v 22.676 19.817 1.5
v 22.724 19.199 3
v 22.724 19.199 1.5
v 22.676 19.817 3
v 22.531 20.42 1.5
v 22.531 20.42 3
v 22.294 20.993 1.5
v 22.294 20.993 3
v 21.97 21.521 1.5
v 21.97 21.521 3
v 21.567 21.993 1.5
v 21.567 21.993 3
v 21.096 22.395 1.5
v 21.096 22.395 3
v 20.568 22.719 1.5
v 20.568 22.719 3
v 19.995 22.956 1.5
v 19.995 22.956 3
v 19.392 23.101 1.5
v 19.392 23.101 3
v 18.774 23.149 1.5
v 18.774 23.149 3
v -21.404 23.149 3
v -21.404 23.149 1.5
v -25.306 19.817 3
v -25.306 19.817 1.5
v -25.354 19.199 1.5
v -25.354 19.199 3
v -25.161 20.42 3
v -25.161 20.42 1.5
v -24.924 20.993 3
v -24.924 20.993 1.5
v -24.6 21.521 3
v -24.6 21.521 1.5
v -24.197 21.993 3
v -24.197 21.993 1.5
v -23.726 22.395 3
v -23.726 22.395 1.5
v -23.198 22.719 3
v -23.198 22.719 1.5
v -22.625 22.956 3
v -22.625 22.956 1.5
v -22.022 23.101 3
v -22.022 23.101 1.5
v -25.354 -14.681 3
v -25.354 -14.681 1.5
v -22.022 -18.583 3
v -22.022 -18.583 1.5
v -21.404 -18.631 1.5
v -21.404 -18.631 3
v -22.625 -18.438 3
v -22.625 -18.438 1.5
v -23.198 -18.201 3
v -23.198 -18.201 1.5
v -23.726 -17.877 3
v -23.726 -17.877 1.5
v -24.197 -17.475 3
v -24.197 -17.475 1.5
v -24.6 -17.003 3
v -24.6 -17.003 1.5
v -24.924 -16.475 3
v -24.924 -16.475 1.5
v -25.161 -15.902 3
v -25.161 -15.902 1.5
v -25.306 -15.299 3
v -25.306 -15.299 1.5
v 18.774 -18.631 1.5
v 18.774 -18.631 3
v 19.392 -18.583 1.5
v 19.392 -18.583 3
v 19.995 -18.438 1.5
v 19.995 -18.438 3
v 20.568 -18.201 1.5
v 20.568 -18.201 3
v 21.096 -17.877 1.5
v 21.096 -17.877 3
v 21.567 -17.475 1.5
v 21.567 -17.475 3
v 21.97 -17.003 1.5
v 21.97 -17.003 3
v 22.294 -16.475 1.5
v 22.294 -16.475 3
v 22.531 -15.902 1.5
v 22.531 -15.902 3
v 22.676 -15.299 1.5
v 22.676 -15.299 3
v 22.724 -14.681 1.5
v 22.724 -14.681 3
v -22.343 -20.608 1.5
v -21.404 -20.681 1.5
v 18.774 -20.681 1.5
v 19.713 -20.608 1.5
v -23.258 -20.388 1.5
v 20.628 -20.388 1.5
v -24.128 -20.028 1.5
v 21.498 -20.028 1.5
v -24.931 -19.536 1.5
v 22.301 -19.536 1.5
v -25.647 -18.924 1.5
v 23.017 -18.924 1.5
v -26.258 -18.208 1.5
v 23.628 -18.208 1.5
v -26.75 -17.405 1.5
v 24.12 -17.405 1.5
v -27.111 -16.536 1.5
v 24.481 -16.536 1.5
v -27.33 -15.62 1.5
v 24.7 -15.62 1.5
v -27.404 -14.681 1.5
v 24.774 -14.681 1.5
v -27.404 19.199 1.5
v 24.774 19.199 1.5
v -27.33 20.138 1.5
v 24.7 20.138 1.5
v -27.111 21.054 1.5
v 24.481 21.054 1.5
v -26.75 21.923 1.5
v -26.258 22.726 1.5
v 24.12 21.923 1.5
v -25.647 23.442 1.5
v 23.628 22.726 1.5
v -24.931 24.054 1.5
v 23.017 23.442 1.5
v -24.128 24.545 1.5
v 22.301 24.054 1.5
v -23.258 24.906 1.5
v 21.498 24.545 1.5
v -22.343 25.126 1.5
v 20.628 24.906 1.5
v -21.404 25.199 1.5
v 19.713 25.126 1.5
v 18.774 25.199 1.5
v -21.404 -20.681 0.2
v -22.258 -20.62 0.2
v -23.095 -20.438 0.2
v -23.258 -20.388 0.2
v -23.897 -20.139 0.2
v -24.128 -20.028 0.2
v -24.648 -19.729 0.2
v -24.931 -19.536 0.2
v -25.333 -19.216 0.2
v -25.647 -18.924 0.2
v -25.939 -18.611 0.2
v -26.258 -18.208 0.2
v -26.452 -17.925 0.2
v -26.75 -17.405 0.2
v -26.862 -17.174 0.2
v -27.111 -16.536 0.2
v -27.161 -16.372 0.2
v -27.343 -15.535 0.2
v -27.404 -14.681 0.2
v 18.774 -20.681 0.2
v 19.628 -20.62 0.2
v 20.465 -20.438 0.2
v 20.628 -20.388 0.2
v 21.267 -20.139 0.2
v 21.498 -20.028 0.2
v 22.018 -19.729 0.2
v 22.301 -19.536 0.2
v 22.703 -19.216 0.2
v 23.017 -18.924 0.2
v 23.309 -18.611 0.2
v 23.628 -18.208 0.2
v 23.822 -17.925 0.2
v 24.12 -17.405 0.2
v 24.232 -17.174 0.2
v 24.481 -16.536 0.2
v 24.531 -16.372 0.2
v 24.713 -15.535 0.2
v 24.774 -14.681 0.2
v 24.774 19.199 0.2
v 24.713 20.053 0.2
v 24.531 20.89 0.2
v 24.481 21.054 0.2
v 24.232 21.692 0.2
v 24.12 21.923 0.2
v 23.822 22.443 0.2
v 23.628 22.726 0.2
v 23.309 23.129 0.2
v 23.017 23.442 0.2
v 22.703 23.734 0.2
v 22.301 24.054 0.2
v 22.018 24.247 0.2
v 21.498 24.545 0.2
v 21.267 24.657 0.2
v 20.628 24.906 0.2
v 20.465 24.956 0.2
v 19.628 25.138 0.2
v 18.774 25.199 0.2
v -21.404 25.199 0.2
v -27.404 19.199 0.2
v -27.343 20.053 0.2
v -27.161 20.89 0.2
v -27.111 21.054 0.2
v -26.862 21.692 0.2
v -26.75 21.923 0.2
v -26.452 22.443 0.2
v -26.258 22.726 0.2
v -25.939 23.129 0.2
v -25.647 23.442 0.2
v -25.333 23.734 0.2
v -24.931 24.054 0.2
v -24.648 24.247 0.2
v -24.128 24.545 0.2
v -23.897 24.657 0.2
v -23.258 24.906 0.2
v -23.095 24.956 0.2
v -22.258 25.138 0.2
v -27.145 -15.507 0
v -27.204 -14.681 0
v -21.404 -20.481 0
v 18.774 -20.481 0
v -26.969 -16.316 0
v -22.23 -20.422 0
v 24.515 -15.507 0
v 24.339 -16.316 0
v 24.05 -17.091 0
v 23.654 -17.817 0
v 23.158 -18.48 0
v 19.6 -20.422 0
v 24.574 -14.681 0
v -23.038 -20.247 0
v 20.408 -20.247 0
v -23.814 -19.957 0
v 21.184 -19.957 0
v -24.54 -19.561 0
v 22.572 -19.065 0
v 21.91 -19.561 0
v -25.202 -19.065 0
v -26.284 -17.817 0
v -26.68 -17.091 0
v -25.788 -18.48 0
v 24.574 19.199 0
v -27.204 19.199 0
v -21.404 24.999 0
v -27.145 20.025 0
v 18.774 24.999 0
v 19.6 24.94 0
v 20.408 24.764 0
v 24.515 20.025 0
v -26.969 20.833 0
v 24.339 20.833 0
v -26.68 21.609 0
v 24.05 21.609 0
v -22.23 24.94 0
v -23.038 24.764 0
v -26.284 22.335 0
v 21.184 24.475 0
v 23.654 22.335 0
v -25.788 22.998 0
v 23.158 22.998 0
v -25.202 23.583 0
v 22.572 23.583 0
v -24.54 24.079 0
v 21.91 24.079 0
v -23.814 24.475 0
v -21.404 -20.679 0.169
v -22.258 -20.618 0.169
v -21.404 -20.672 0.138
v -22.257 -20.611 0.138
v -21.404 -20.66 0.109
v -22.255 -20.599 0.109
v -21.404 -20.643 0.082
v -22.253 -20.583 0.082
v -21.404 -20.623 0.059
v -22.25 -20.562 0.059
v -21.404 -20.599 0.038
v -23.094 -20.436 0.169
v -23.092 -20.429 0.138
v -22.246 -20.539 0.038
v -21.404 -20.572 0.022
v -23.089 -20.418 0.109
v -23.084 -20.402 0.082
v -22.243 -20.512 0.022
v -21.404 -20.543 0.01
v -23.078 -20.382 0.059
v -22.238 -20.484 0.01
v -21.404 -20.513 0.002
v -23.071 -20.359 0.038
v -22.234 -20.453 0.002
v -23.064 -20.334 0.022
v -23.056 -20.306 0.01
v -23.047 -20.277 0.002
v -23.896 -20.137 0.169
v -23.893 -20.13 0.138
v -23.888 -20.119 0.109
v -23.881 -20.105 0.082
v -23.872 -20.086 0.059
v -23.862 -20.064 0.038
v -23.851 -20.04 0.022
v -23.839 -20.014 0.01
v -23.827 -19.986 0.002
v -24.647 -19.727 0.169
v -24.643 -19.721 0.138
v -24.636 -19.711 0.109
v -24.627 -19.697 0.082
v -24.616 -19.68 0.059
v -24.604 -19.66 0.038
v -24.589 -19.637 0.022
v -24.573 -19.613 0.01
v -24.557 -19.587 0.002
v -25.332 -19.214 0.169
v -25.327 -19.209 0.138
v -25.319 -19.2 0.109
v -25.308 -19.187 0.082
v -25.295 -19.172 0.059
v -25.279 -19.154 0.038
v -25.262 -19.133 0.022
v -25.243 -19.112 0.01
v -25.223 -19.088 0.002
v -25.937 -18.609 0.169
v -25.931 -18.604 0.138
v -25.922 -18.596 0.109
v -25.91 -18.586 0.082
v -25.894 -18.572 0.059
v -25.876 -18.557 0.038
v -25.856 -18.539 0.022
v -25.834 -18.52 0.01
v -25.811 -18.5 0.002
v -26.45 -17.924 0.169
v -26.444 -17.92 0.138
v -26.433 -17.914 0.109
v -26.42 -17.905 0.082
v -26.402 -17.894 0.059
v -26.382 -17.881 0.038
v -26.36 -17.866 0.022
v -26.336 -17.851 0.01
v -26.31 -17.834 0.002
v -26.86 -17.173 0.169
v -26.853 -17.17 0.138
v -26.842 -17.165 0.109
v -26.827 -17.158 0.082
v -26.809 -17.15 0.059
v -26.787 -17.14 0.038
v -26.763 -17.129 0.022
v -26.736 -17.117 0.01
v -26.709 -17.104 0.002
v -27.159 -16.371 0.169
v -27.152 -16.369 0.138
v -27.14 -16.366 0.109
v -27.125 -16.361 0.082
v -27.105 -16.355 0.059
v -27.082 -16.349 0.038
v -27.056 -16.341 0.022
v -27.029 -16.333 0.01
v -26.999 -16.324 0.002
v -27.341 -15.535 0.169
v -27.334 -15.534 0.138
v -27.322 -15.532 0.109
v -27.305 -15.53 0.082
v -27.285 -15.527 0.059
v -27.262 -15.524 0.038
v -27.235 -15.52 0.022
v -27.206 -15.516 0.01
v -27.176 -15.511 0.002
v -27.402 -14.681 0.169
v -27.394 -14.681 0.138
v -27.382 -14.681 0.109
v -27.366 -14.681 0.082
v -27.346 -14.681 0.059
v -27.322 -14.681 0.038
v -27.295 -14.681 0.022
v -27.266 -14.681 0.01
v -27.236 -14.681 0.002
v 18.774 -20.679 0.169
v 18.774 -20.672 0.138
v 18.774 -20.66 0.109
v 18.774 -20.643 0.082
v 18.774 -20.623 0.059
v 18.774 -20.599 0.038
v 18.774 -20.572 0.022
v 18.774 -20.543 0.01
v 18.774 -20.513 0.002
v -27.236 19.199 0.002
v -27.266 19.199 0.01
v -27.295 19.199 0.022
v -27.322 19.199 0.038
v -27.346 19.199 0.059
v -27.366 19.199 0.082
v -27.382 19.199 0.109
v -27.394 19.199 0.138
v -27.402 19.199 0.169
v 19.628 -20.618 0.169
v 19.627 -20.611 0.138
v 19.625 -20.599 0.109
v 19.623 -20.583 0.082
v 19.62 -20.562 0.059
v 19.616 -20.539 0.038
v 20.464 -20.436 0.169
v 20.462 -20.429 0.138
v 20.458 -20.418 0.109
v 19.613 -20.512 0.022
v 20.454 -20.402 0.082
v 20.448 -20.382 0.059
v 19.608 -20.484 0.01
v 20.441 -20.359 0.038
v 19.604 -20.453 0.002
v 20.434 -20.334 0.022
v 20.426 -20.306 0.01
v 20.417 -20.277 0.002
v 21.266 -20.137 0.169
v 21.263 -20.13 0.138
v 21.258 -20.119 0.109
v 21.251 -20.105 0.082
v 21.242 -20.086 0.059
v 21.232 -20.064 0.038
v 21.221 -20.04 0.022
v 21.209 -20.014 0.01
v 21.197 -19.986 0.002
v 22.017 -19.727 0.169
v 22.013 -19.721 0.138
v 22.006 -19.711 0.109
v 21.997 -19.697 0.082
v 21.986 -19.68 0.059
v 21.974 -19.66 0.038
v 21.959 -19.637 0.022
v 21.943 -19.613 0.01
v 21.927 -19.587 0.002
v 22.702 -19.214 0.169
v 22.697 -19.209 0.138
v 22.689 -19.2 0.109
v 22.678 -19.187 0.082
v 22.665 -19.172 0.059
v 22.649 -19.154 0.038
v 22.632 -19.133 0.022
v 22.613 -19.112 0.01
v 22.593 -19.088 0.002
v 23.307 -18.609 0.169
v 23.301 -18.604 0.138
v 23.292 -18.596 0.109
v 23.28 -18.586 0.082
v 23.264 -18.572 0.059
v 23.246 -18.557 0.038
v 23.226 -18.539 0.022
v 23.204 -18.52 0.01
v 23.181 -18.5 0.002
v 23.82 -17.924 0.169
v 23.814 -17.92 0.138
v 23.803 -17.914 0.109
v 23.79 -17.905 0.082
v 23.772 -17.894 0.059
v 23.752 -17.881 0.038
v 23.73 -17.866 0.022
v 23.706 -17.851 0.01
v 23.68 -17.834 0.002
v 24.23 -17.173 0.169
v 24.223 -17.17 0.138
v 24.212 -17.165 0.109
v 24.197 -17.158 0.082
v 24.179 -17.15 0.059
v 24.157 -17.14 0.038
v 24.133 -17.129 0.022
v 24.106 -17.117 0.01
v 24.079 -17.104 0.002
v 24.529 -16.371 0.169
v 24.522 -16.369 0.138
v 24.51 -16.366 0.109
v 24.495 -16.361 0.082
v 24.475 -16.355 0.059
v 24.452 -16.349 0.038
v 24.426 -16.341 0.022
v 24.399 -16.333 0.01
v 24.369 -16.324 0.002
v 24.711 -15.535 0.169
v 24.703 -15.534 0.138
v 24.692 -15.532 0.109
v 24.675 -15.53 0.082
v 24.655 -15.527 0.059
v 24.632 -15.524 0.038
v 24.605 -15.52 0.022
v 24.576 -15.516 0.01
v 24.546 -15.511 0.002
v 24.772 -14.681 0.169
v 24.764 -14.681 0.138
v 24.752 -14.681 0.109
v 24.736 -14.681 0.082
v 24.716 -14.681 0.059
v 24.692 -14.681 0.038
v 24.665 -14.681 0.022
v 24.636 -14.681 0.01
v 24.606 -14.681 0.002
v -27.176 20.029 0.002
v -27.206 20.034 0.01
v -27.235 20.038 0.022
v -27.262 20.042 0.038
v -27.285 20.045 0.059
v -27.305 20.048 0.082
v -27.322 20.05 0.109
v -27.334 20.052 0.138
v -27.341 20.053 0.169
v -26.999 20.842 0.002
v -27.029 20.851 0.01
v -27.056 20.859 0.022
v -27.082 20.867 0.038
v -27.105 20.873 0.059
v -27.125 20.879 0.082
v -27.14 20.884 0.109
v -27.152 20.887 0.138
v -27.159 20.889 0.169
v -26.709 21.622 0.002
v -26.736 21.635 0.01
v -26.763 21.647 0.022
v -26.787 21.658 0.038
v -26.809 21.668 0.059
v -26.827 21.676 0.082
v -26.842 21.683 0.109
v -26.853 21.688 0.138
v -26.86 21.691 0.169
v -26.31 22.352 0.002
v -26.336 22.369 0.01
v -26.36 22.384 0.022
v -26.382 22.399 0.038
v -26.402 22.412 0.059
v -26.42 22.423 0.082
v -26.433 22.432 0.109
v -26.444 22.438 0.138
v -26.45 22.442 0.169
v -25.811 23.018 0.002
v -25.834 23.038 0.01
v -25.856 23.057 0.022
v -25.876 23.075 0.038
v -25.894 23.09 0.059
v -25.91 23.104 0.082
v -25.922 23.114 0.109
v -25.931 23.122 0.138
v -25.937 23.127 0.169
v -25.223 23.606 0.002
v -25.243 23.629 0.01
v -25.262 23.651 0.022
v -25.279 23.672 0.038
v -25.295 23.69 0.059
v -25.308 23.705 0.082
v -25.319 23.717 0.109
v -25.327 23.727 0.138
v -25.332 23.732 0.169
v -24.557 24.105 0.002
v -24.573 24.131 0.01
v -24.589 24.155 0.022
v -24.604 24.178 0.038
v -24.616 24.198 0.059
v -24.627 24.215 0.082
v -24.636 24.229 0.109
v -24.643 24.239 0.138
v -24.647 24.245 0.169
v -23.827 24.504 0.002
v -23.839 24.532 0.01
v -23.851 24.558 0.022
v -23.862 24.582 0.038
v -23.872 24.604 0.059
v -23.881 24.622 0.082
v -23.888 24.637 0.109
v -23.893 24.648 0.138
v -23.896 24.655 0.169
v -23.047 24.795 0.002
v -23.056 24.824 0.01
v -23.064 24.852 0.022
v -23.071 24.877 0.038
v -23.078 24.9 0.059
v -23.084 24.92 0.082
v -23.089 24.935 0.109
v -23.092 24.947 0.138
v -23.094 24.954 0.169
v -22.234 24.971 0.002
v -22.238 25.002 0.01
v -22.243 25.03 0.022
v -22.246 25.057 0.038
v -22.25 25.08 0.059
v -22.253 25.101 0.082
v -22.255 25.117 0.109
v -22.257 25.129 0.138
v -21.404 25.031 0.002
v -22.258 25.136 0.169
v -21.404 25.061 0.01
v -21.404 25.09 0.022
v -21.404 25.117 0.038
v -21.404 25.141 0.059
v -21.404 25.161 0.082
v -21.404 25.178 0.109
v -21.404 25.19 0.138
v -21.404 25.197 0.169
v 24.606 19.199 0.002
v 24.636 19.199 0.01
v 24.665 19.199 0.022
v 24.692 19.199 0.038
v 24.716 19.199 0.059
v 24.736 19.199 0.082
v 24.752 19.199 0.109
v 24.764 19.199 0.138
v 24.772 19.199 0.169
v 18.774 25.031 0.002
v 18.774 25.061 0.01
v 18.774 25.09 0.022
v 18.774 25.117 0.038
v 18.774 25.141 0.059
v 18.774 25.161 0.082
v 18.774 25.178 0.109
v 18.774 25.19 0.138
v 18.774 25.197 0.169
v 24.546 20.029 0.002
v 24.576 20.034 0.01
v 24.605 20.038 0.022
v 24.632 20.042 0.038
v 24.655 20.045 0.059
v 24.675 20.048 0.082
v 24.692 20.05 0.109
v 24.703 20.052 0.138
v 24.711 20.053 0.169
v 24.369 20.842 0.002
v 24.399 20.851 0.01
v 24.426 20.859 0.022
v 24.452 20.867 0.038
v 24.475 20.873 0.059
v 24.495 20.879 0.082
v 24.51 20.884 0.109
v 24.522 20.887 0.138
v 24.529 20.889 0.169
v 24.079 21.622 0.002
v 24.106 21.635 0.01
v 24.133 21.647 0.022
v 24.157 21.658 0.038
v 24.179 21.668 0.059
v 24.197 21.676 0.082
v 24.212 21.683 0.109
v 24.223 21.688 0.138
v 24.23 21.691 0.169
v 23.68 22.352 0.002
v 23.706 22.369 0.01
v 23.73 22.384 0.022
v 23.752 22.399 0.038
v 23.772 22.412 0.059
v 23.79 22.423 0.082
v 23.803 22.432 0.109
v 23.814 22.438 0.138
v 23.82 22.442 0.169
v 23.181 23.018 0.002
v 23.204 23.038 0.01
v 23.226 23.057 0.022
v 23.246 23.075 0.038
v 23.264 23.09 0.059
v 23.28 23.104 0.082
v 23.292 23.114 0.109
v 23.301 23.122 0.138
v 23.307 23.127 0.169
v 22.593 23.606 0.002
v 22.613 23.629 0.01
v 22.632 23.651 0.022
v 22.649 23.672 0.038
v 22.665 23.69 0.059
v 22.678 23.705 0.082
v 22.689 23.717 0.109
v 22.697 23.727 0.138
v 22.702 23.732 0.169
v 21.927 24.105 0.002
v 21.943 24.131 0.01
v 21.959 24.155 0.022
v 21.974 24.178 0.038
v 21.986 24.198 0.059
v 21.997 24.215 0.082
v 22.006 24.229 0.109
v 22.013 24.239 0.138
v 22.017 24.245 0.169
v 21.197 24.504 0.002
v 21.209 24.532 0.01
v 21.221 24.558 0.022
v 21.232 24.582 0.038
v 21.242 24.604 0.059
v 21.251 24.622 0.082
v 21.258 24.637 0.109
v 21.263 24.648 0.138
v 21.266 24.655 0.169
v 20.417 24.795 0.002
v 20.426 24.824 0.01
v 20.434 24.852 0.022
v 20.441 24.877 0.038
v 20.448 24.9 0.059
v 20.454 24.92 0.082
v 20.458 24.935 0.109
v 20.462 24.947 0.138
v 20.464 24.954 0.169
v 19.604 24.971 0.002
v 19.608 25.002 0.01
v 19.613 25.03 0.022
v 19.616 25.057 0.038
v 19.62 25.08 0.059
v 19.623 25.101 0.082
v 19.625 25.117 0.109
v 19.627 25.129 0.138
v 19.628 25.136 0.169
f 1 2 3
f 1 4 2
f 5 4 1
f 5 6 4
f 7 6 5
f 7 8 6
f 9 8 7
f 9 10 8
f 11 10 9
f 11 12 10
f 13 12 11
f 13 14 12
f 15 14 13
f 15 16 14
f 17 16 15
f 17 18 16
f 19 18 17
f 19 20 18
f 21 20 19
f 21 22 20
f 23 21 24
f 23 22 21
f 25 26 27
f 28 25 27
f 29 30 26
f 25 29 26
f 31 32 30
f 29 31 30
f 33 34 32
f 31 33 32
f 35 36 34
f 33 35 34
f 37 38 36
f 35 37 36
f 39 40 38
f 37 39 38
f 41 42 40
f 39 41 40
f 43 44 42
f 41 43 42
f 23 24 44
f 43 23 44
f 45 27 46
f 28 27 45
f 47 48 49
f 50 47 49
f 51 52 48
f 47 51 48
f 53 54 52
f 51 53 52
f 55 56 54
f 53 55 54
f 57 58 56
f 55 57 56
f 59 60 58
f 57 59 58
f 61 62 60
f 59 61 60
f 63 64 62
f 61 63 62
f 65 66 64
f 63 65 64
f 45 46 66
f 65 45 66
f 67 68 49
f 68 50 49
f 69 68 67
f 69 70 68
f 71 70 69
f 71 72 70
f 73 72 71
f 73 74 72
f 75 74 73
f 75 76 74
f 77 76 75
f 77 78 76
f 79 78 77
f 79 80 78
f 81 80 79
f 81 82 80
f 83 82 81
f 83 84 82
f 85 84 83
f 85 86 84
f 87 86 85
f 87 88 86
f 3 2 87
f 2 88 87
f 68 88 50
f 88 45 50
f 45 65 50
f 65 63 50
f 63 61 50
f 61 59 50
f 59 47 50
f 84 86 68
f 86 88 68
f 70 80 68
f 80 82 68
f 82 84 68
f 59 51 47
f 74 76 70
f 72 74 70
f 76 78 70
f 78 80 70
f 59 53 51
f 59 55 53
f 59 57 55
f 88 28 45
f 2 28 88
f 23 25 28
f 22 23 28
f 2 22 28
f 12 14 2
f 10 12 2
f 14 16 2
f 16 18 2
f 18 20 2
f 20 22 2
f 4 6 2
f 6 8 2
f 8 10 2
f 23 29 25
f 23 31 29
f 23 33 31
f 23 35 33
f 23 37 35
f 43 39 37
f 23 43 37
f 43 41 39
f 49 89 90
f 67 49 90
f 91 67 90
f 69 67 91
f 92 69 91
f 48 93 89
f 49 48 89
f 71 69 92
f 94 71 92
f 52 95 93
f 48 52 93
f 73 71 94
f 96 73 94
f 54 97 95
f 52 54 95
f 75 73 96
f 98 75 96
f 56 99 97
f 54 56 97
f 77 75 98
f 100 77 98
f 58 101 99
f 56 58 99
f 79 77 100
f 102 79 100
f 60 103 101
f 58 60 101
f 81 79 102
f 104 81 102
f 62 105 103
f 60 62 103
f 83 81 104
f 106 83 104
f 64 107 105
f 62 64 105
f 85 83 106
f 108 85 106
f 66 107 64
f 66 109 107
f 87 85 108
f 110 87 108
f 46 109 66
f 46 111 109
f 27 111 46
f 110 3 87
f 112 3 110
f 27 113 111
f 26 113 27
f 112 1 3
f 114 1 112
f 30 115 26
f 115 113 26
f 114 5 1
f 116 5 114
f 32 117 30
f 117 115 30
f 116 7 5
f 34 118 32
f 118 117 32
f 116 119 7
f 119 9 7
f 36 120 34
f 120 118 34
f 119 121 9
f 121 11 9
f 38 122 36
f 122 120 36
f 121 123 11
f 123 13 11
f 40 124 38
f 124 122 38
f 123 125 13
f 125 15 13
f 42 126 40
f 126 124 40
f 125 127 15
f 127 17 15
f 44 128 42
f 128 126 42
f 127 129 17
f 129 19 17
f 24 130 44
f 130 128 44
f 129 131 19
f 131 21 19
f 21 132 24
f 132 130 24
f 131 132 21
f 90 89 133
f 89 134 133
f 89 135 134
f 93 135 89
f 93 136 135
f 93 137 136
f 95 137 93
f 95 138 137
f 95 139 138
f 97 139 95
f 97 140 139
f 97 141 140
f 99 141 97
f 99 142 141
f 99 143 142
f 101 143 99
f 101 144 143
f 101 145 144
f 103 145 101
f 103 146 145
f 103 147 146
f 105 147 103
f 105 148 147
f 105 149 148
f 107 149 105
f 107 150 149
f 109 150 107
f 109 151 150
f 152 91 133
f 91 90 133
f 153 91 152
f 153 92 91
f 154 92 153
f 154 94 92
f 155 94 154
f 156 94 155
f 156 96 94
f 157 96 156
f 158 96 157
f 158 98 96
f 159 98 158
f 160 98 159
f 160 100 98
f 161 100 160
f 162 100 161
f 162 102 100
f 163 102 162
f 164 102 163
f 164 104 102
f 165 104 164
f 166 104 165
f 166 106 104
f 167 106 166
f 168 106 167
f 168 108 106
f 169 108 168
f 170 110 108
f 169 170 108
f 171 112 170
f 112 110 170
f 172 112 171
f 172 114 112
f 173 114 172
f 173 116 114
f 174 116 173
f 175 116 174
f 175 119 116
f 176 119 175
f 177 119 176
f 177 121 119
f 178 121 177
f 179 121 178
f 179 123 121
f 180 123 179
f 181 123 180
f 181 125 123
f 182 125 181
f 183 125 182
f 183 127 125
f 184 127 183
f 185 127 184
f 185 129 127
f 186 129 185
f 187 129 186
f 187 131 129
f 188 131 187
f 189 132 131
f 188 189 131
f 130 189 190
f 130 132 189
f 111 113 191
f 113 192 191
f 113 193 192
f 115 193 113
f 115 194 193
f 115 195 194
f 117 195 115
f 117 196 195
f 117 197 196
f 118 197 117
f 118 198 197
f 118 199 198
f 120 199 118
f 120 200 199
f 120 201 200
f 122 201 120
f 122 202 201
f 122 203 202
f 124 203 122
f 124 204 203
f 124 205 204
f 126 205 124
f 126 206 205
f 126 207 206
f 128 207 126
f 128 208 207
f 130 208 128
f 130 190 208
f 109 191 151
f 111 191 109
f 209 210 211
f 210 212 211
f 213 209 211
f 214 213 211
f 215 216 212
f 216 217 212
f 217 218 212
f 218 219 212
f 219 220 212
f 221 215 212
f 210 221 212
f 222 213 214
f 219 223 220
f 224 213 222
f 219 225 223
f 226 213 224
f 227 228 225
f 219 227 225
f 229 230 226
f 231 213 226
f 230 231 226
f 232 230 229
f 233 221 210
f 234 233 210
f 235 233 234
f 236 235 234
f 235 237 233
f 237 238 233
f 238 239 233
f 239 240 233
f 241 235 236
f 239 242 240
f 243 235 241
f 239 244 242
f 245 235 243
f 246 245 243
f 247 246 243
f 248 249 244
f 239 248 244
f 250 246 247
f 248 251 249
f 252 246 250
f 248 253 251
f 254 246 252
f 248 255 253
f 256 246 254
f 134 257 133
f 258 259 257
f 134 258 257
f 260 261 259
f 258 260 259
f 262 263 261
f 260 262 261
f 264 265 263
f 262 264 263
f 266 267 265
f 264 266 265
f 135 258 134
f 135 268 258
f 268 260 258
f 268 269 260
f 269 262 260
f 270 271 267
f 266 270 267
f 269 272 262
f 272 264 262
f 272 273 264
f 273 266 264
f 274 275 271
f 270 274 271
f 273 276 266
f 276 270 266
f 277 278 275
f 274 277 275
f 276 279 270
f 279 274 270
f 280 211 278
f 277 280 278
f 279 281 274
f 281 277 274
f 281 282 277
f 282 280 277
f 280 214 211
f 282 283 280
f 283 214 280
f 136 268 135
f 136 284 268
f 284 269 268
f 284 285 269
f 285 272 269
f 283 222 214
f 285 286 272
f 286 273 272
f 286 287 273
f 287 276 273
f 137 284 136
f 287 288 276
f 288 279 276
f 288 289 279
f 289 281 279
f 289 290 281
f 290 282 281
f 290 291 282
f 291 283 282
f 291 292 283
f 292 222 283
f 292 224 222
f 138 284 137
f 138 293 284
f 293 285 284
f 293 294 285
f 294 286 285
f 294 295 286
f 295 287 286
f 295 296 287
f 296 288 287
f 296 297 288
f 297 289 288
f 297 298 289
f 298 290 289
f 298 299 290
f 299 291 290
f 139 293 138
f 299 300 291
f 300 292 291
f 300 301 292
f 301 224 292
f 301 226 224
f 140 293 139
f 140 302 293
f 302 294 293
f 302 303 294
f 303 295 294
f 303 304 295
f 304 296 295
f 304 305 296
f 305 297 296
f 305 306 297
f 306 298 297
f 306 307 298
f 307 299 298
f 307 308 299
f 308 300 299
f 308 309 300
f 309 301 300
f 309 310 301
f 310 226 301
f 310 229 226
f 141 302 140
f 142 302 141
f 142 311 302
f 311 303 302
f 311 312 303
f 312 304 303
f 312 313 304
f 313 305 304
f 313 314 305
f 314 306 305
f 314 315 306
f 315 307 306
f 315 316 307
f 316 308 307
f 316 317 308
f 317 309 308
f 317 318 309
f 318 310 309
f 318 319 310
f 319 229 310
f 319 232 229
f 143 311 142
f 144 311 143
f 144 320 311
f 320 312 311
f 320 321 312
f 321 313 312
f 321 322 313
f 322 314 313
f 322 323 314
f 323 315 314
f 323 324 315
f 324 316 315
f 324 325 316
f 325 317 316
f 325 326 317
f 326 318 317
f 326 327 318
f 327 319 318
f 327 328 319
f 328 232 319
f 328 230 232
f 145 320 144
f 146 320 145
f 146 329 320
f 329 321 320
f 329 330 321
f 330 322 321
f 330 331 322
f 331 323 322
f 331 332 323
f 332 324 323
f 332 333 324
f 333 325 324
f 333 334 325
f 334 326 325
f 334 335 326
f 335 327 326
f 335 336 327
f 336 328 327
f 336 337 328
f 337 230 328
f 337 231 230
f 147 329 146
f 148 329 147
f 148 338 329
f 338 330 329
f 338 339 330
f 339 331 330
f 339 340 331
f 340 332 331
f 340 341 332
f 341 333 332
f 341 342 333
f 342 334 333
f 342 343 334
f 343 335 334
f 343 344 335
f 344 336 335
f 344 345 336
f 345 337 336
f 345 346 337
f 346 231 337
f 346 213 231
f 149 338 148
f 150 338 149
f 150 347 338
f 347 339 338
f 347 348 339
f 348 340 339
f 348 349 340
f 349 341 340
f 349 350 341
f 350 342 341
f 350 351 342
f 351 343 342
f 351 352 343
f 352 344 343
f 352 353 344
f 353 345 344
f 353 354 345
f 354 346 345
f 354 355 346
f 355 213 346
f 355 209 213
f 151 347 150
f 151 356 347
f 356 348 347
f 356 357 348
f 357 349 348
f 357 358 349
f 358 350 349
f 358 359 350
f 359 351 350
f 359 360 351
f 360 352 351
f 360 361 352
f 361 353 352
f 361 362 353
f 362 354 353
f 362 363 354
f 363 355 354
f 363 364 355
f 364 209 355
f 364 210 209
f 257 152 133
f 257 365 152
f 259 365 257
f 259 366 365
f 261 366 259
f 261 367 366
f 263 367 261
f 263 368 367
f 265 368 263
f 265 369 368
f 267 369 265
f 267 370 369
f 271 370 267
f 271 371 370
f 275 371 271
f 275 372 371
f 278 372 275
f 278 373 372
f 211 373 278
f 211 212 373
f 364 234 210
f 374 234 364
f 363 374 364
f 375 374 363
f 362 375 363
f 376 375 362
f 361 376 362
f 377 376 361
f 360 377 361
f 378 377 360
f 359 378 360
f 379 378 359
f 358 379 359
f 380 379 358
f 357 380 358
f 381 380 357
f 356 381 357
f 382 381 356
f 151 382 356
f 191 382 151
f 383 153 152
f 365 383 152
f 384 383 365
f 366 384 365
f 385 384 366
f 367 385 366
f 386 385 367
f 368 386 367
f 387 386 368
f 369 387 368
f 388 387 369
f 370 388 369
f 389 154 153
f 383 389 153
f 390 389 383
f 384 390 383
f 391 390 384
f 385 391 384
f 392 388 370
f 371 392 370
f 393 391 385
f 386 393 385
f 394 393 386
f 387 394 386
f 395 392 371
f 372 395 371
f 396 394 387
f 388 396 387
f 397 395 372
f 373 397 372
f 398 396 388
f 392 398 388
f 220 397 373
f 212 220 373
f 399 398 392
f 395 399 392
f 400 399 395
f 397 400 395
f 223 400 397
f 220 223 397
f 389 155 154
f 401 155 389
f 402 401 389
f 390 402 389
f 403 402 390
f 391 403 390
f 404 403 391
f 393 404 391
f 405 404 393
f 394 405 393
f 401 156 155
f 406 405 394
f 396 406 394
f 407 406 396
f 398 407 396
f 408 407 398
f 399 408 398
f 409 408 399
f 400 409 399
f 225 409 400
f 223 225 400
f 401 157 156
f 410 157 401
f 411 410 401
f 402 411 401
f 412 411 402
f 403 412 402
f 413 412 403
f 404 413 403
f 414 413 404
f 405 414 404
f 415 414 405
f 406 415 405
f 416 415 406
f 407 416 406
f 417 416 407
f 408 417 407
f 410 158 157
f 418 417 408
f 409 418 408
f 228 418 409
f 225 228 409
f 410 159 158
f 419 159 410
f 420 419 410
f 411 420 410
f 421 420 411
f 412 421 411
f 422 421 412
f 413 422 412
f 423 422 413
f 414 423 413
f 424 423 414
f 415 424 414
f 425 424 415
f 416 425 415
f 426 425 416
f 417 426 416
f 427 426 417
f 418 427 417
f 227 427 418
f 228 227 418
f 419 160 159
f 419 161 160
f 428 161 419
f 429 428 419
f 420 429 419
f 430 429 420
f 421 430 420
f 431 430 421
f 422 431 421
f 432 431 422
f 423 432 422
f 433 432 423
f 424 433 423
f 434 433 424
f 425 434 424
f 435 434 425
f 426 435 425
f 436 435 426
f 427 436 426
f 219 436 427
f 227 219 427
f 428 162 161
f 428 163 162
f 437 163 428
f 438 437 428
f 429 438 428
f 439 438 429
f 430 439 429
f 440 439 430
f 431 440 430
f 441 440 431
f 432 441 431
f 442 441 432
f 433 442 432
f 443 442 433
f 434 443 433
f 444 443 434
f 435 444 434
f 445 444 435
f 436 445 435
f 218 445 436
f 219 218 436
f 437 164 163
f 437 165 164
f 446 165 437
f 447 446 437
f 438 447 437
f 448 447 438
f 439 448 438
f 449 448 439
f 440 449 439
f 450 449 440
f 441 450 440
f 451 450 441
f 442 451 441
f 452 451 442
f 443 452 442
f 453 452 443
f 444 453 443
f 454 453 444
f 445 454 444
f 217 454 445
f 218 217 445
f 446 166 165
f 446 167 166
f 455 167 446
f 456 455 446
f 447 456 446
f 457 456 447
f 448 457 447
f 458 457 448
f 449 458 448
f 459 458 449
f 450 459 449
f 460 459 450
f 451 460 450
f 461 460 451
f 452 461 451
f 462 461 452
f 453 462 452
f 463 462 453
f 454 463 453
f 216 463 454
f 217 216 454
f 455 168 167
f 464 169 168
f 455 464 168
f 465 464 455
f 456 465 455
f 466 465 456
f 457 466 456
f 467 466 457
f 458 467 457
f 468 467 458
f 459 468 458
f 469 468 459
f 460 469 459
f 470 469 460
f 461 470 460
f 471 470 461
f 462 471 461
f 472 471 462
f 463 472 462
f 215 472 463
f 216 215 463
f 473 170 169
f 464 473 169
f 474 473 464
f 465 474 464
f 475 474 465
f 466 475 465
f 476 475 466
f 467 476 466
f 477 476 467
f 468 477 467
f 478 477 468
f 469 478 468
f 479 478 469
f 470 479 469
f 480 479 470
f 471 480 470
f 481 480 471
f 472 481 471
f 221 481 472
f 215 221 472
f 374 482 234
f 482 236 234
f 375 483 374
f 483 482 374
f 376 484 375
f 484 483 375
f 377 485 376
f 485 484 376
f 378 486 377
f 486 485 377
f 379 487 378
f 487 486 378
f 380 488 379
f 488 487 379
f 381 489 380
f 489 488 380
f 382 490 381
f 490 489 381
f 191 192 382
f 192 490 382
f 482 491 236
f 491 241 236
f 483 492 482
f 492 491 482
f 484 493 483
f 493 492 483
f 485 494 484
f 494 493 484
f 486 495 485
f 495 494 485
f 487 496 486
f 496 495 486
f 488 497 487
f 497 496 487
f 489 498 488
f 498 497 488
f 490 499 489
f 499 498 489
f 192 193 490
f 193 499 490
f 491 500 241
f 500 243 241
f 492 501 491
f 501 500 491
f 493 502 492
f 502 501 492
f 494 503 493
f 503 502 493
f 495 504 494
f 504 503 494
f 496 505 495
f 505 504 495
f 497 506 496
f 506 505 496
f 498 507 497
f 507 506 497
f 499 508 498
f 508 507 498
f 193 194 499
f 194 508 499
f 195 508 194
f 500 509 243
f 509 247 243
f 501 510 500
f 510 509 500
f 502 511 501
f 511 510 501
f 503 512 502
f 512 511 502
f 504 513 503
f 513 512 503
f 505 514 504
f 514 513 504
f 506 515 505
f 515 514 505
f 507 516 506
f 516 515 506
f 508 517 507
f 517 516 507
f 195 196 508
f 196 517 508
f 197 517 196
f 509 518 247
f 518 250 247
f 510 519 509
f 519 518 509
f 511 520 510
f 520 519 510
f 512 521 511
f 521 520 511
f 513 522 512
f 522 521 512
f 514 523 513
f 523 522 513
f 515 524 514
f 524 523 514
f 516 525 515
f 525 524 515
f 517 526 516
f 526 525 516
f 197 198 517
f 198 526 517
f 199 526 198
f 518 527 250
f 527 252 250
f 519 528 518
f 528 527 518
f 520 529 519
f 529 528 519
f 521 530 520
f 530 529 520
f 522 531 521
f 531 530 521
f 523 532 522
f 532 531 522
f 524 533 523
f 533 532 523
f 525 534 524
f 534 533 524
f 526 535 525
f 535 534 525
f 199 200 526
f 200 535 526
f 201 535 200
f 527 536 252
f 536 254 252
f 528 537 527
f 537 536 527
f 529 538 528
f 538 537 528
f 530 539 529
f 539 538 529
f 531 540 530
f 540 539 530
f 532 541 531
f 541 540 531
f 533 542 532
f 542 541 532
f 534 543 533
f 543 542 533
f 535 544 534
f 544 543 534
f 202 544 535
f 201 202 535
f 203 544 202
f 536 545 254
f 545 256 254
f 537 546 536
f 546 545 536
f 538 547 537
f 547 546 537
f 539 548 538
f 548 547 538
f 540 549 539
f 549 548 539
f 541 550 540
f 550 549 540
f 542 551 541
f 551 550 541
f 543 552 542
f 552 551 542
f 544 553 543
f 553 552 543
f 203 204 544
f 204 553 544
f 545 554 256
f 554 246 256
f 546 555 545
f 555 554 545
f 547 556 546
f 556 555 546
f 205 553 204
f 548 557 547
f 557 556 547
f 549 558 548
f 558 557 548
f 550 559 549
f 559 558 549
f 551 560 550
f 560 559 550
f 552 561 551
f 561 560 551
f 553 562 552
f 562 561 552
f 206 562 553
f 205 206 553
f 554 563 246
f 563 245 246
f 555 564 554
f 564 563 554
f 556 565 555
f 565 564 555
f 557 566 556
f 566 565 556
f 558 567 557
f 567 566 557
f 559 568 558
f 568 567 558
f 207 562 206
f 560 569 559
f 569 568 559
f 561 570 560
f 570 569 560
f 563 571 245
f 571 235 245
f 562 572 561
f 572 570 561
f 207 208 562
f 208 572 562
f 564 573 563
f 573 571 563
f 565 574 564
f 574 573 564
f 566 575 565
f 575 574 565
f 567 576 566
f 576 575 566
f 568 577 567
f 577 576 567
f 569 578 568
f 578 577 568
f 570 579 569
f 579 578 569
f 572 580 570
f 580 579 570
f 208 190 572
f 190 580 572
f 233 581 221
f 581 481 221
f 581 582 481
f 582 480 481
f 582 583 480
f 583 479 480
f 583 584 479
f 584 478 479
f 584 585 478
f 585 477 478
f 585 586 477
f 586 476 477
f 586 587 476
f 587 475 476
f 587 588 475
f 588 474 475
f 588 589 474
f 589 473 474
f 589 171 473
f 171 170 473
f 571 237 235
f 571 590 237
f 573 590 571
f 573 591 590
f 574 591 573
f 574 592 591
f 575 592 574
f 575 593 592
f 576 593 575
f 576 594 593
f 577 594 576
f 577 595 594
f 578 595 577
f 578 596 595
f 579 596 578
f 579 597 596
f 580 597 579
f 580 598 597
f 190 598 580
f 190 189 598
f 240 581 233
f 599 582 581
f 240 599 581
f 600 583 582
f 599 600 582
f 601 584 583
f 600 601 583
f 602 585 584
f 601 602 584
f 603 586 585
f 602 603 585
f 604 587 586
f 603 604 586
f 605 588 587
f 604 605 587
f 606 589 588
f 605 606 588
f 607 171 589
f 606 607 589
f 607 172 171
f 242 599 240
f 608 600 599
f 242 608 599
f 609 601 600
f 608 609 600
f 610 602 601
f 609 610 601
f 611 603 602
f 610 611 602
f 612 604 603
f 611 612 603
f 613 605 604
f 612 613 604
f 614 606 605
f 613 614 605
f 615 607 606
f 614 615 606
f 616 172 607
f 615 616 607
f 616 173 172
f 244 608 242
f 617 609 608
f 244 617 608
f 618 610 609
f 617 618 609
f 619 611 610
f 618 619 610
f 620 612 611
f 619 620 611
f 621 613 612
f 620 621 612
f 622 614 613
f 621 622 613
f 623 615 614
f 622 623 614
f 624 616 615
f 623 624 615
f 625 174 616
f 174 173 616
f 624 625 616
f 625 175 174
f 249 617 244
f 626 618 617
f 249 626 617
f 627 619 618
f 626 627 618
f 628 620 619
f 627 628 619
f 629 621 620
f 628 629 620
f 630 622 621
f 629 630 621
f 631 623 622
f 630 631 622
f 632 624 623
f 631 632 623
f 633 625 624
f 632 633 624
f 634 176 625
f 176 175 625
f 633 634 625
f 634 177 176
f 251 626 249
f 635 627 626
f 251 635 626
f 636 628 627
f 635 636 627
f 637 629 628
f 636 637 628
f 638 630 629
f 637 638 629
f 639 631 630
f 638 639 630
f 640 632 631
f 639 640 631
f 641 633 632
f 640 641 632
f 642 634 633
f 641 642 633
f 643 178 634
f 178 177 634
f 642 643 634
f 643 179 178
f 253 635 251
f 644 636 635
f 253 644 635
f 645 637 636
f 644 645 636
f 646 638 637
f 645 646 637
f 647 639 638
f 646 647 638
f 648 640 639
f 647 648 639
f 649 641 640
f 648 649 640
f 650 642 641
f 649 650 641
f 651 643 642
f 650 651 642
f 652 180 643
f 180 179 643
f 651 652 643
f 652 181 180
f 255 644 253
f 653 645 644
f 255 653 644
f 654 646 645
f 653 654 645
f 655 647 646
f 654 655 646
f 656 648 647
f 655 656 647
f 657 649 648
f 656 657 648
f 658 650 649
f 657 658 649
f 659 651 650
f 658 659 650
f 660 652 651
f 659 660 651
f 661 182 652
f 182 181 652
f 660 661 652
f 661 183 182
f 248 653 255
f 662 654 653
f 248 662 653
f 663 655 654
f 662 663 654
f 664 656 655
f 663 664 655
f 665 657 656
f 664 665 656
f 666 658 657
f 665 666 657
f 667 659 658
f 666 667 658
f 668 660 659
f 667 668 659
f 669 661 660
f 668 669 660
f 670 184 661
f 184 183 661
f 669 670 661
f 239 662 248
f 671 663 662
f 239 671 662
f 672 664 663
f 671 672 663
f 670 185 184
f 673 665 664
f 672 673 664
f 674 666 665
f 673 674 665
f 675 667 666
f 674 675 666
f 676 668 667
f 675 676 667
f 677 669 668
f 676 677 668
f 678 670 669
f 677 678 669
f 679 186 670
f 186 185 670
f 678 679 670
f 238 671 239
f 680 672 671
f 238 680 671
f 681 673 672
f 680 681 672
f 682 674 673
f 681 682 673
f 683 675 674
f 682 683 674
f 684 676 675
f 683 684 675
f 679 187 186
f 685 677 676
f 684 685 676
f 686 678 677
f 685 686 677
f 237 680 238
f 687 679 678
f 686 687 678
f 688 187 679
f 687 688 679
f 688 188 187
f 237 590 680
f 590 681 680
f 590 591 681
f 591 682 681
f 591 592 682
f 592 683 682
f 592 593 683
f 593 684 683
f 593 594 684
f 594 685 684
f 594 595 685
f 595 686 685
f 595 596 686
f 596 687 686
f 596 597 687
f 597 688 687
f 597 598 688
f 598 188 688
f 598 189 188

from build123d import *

# Parameters (mm, degrees)
BOSS_EXTRUDE3_DEPTH = 3
BOSS_EXTRUDE4_DEPTH = 1.5
FILLET1_R           = 0.2


with BuildPart() as part:
    # Sketch3 → Boss-Extrude3 (new body)
    with BuildSketch(Plane.XY):
        with BuildLine():
            Line((-25.35426057, 19.199439056), (-25.35426057, -14.681488353))
            ThreePointArc((-25.35426057, -14.681488353), (-24.197332356, -17.474560138), (-21.40426057, -18.631488353))
            Line((-21.40426057, -18.631488353), (18.774241414, -18.631488353))
            ThreePointArc((18.774241414, -18.631488353), (21.567313199, -17.474560138), (22.724241414, -14.681488353))
            Line((22.724241414, -14.681488353), (22.724241414, 19.199439056))
            ThreePointArc((22.724241414, 19.199439056), (21.567313199, 21.992510842), (18.774241414, 23.149439056))
            Line((18.774241414, 23.149439056), (-21.40426057, 23.149439056))
            ThreePointArc((-21.40426057, 23.149439056), (-24.197332356, 21.992510842), (-25.35426057, 19.199439056))
        make_face()
    extrude(amount=BOSS_EXTRUDE3_DEPTH)

    # Sketch3<4> → Boss-Extrude4 (add)
    with BuildSketch(Plane.XY):
        with BuildLine():
            Line((-27.40426057, 19.199439056), (-27.40426057, -14.681488353))
            ThreePointArc((-27.40426057, -14.681488353), (-25.646901258, -18.92412904), (-21.40426057, -20.681488353))
            Line((-21.40426057, -20.681488353), (18.774241414, -20.681488353))
            ThreePointArc((18.774241414, -20.681488353), (23.016882101, -18.92412904), (24.774241414, -14.681488353))
            Line((24.774241414, -14.681488353), (24.774241414, 19.199439056))
            ThreePointArc((24.774241414, 19.199439056), (23.016882101, 23.442079743), (18.774241414, 25.199439056))
            Line((18.774241414, 25.199439056), (-21.40426057, 25.199439056))
            ThreePointArc((-21.40426057, 25.199439056), (-25.646901258, 23.442079743), (-27.40426057, 19.199439056))
        make_face()
        with BuildLine():
            Line((-25.35426057, 19.199439056), (-25.35426057, -14.681488353))
            ThreePointArc((-25.35426057, -14.681488353), (-24.197332356, -17.474560138), (-21.40426057, -18.631488353))
            Line((-21.40426057, -18.631488353), (18.774241414, -18.631488353))
            ThreePointArc((18.774241414, -18.631488353), (21.567313199, -17.474560138), (22.724241414, -14.681488353))
            Line((22.724241414, -14.681488353), (22.724241414, 19.199439056))
            ThreePointArc((22.724241414, 19.199439056), (21.567313199, 21.992510842), (18.774241414, 23.149439056))
            Line((18.774241414, 23.149439056), (-21.40426057, 23.149439056))
            ThreePointArc((-21.40426057, 23.149439056), (-24.197332356, 21.992510842), (-25.35426057, 19.199439056))
        make_face(mode=Mode.SUBTRACT)
    extrude(amount=BOSS_EXTRUDE4_DEPTH)

    # Fillet1
    fillet1_edges = [part.edges().sort_by_distance(p)[0] for p in [
        (-25.646901258, -18.92412904, 0),
        (-1.315009578, -20.681488353, 0),
        (23.016882101, -18.92412904, 0),
        (24.774241414, 2.258975352, 0),
        (23.016882101, 23.442079743, 0),
        (-1.315009578, 25.199439056, 0),
        (-25.646901258, 23.442079743, 0),
        (-27.40426057, 2.258975352, 0),
    ]]
    fillet(fillet1_edges, radius=FILLET1_R)


solid = part.part
